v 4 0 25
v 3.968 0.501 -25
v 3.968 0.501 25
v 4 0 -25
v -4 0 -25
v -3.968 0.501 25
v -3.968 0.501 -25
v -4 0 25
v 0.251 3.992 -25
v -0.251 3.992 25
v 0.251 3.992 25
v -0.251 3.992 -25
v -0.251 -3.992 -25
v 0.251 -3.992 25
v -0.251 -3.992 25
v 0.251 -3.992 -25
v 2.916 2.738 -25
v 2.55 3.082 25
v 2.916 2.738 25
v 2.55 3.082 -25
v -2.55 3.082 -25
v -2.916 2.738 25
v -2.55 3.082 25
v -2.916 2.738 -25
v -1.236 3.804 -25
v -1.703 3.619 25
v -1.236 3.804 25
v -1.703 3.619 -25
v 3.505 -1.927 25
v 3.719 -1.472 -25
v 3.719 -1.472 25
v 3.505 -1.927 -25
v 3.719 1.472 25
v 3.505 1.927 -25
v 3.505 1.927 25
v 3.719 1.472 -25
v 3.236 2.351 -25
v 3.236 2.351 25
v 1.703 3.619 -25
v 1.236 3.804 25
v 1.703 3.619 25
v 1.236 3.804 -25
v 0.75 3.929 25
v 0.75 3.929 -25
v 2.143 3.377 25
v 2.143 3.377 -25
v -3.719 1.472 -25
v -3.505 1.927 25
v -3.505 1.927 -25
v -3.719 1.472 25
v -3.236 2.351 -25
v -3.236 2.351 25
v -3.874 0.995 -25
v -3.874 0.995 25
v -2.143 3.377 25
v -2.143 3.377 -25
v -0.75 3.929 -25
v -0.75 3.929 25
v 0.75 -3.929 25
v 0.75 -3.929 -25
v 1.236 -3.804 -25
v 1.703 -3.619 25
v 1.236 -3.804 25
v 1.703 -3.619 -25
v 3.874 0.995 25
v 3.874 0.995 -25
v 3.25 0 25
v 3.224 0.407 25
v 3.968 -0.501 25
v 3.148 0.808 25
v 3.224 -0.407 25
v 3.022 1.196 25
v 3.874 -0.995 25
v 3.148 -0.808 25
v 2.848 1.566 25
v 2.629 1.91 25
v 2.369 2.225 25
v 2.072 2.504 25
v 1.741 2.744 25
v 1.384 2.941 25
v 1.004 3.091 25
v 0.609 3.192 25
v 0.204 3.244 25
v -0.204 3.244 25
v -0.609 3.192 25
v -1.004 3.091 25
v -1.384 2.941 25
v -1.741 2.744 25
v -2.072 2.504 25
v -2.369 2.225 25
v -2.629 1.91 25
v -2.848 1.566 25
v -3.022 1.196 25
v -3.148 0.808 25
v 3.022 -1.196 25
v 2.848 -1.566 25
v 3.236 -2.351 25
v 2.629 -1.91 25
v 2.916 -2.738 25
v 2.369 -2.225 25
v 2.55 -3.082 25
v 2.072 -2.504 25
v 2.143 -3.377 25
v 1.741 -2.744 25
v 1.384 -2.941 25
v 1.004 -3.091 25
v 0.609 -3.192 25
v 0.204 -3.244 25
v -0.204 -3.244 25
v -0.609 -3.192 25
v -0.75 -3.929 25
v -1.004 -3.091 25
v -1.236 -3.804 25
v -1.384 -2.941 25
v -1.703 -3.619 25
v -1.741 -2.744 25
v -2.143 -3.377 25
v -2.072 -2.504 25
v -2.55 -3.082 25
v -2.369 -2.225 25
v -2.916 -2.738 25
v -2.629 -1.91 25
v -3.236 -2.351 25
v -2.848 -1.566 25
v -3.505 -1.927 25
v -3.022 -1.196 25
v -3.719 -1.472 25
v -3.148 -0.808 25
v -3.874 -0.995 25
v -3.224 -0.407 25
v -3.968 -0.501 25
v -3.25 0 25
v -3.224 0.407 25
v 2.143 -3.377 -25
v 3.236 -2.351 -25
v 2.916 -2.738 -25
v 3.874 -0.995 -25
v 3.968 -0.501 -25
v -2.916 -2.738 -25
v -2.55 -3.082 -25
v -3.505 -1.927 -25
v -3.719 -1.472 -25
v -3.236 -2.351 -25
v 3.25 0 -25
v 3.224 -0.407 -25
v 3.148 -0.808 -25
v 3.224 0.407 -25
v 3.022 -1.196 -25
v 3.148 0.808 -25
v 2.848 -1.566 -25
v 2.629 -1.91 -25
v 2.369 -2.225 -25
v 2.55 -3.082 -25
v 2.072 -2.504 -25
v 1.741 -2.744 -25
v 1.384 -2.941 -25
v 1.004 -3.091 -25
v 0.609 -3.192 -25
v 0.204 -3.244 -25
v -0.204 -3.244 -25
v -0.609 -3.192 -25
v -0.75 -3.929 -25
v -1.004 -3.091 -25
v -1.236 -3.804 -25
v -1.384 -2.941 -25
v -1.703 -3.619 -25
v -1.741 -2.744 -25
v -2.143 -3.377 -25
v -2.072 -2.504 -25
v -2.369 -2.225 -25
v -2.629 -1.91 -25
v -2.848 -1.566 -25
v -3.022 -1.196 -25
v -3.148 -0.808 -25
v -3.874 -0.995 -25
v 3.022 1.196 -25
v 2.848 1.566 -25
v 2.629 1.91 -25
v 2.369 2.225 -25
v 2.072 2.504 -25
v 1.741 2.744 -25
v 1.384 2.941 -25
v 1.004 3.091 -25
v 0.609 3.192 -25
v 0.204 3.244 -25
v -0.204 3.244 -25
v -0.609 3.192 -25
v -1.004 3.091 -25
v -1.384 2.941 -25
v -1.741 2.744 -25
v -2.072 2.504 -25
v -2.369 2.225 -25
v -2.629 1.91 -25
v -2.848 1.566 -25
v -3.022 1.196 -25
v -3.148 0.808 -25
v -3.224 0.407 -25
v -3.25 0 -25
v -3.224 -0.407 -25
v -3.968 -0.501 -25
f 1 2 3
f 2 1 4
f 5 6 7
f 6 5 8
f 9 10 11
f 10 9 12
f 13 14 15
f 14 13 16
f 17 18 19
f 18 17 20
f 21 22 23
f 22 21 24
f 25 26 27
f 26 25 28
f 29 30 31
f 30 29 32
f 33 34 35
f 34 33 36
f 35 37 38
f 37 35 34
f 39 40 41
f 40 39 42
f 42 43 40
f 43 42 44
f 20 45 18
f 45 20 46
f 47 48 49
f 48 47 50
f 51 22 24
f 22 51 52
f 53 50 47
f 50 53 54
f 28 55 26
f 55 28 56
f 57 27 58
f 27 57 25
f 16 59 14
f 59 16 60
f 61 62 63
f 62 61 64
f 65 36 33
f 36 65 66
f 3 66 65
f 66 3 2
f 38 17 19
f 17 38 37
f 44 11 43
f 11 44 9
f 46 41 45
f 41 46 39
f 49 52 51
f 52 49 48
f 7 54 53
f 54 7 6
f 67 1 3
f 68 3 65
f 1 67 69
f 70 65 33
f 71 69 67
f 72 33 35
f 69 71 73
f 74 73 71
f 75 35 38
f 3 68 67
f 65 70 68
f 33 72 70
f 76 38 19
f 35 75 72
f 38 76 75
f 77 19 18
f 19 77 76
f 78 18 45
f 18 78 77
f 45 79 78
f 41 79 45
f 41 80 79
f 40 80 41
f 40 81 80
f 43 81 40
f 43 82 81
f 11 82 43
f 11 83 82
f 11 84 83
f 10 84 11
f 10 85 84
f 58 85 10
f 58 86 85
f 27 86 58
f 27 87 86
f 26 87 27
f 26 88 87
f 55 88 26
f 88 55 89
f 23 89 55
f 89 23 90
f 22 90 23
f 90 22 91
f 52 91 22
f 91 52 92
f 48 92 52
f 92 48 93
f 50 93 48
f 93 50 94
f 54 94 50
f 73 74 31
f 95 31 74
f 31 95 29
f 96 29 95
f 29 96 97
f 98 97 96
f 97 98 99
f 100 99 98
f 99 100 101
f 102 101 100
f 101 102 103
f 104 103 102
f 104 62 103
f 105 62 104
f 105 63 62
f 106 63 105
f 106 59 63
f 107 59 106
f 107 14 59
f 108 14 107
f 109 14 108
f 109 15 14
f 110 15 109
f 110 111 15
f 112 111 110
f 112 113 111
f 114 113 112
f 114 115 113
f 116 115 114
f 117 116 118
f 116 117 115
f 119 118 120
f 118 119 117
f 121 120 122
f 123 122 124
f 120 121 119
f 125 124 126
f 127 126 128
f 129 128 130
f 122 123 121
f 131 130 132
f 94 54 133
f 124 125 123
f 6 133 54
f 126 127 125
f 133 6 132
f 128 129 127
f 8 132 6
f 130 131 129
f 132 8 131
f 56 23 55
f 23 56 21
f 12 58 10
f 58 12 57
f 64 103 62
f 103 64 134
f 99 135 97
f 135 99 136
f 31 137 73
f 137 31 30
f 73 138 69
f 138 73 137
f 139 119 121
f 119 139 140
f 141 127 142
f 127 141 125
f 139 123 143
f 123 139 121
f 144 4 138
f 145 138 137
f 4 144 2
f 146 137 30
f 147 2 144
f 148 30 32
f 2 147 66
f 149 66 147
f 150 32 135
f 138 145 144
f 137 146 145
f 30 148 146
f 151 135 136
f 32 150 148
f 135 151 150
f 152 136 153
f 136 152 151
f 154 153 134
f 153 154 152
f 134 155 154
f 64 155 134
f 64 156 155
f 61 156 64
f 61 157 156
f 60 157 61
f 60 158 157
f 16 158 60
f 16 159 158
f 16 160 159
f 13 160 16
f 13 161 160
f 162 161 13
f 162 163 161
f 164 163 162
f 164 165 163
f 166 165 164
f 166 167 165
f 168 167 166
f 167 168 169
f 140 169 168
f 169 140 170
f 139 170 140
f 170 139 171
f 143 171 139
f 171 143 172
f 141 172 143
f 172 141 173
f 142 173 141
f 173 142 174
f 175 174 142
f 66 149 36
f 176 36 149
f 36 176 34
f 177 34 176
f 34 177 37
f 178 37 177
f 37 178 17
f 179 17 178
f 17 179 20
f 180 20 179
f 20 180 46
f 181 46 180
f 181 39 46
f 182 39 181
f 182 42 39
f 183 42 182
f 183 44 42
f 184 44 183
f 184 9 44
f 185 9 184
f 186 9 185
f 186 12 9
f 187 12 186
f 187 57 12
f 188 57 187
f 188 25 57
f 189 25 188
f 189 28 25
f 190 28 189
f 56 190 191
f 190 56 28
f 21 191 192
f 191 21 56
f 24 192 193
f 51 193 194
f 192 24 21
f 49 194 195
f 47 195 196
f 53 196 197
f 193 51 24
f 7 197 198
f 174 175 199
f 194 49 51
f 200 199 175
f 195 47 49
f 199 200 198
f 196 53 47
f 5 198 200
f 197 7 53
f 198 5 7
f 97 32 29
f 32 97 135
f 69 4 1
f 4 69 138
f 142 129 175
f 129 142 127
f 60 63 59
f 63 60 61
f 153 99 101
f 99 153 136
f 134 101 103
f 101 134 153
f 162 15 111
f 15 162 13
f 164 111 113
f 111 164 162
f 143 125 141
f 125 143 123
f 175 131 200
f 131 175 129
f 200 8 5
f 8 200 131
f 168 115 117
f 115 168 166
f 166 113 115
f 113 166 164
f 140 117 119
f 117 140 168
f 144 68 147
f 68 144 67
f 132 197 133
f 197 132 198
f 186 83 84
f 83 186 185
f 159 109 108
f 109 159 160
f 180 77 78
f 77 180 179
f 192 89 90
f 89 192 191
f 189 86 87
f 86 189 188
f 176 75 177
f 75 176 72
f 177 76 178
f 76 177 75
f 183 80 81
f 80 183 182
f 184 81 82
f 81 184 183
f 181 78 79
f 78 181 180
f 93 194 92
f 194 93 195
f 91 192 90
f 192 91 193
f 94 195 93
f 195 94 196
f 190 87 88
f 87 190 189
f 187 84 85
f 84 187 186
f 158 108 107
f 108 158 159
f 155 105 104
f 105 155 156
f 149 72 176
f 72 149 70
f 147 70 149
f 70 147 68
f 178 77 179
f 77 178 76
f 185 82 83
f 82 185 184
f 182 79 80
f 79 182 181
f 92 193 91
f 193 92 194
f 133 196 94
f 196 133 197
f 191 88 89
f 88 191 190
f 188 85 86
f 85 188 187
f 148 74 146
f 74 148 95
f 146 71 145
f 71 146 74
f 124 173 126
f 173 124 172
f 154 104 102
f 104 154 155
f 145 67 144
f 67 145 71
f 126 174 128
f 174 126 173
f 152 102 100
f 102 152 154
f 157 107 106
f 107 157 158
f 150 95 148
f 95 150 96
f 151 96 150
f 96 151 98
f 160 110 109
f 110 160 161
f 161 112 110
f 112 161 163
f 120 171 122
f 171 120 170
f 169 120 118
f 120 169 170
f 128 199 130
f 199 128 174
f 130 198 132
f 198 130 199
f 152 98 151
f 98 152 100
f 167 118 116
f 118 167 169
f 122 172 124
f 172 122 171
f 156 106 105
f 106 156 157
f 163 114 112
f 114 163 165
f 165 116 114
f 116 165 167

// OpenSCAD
$fn = 50;


difference() {
	union() {
		translate(v = [0, 0, -25.0000000000]) {
			cylinder(h = 50, r = 4.0000000000);
		}
	}
	union() {
		translate(v = [0, 0, -100.0000000000]) {
			cylinder(h = 200, r = 3.2500000000);
		}
	}
}
